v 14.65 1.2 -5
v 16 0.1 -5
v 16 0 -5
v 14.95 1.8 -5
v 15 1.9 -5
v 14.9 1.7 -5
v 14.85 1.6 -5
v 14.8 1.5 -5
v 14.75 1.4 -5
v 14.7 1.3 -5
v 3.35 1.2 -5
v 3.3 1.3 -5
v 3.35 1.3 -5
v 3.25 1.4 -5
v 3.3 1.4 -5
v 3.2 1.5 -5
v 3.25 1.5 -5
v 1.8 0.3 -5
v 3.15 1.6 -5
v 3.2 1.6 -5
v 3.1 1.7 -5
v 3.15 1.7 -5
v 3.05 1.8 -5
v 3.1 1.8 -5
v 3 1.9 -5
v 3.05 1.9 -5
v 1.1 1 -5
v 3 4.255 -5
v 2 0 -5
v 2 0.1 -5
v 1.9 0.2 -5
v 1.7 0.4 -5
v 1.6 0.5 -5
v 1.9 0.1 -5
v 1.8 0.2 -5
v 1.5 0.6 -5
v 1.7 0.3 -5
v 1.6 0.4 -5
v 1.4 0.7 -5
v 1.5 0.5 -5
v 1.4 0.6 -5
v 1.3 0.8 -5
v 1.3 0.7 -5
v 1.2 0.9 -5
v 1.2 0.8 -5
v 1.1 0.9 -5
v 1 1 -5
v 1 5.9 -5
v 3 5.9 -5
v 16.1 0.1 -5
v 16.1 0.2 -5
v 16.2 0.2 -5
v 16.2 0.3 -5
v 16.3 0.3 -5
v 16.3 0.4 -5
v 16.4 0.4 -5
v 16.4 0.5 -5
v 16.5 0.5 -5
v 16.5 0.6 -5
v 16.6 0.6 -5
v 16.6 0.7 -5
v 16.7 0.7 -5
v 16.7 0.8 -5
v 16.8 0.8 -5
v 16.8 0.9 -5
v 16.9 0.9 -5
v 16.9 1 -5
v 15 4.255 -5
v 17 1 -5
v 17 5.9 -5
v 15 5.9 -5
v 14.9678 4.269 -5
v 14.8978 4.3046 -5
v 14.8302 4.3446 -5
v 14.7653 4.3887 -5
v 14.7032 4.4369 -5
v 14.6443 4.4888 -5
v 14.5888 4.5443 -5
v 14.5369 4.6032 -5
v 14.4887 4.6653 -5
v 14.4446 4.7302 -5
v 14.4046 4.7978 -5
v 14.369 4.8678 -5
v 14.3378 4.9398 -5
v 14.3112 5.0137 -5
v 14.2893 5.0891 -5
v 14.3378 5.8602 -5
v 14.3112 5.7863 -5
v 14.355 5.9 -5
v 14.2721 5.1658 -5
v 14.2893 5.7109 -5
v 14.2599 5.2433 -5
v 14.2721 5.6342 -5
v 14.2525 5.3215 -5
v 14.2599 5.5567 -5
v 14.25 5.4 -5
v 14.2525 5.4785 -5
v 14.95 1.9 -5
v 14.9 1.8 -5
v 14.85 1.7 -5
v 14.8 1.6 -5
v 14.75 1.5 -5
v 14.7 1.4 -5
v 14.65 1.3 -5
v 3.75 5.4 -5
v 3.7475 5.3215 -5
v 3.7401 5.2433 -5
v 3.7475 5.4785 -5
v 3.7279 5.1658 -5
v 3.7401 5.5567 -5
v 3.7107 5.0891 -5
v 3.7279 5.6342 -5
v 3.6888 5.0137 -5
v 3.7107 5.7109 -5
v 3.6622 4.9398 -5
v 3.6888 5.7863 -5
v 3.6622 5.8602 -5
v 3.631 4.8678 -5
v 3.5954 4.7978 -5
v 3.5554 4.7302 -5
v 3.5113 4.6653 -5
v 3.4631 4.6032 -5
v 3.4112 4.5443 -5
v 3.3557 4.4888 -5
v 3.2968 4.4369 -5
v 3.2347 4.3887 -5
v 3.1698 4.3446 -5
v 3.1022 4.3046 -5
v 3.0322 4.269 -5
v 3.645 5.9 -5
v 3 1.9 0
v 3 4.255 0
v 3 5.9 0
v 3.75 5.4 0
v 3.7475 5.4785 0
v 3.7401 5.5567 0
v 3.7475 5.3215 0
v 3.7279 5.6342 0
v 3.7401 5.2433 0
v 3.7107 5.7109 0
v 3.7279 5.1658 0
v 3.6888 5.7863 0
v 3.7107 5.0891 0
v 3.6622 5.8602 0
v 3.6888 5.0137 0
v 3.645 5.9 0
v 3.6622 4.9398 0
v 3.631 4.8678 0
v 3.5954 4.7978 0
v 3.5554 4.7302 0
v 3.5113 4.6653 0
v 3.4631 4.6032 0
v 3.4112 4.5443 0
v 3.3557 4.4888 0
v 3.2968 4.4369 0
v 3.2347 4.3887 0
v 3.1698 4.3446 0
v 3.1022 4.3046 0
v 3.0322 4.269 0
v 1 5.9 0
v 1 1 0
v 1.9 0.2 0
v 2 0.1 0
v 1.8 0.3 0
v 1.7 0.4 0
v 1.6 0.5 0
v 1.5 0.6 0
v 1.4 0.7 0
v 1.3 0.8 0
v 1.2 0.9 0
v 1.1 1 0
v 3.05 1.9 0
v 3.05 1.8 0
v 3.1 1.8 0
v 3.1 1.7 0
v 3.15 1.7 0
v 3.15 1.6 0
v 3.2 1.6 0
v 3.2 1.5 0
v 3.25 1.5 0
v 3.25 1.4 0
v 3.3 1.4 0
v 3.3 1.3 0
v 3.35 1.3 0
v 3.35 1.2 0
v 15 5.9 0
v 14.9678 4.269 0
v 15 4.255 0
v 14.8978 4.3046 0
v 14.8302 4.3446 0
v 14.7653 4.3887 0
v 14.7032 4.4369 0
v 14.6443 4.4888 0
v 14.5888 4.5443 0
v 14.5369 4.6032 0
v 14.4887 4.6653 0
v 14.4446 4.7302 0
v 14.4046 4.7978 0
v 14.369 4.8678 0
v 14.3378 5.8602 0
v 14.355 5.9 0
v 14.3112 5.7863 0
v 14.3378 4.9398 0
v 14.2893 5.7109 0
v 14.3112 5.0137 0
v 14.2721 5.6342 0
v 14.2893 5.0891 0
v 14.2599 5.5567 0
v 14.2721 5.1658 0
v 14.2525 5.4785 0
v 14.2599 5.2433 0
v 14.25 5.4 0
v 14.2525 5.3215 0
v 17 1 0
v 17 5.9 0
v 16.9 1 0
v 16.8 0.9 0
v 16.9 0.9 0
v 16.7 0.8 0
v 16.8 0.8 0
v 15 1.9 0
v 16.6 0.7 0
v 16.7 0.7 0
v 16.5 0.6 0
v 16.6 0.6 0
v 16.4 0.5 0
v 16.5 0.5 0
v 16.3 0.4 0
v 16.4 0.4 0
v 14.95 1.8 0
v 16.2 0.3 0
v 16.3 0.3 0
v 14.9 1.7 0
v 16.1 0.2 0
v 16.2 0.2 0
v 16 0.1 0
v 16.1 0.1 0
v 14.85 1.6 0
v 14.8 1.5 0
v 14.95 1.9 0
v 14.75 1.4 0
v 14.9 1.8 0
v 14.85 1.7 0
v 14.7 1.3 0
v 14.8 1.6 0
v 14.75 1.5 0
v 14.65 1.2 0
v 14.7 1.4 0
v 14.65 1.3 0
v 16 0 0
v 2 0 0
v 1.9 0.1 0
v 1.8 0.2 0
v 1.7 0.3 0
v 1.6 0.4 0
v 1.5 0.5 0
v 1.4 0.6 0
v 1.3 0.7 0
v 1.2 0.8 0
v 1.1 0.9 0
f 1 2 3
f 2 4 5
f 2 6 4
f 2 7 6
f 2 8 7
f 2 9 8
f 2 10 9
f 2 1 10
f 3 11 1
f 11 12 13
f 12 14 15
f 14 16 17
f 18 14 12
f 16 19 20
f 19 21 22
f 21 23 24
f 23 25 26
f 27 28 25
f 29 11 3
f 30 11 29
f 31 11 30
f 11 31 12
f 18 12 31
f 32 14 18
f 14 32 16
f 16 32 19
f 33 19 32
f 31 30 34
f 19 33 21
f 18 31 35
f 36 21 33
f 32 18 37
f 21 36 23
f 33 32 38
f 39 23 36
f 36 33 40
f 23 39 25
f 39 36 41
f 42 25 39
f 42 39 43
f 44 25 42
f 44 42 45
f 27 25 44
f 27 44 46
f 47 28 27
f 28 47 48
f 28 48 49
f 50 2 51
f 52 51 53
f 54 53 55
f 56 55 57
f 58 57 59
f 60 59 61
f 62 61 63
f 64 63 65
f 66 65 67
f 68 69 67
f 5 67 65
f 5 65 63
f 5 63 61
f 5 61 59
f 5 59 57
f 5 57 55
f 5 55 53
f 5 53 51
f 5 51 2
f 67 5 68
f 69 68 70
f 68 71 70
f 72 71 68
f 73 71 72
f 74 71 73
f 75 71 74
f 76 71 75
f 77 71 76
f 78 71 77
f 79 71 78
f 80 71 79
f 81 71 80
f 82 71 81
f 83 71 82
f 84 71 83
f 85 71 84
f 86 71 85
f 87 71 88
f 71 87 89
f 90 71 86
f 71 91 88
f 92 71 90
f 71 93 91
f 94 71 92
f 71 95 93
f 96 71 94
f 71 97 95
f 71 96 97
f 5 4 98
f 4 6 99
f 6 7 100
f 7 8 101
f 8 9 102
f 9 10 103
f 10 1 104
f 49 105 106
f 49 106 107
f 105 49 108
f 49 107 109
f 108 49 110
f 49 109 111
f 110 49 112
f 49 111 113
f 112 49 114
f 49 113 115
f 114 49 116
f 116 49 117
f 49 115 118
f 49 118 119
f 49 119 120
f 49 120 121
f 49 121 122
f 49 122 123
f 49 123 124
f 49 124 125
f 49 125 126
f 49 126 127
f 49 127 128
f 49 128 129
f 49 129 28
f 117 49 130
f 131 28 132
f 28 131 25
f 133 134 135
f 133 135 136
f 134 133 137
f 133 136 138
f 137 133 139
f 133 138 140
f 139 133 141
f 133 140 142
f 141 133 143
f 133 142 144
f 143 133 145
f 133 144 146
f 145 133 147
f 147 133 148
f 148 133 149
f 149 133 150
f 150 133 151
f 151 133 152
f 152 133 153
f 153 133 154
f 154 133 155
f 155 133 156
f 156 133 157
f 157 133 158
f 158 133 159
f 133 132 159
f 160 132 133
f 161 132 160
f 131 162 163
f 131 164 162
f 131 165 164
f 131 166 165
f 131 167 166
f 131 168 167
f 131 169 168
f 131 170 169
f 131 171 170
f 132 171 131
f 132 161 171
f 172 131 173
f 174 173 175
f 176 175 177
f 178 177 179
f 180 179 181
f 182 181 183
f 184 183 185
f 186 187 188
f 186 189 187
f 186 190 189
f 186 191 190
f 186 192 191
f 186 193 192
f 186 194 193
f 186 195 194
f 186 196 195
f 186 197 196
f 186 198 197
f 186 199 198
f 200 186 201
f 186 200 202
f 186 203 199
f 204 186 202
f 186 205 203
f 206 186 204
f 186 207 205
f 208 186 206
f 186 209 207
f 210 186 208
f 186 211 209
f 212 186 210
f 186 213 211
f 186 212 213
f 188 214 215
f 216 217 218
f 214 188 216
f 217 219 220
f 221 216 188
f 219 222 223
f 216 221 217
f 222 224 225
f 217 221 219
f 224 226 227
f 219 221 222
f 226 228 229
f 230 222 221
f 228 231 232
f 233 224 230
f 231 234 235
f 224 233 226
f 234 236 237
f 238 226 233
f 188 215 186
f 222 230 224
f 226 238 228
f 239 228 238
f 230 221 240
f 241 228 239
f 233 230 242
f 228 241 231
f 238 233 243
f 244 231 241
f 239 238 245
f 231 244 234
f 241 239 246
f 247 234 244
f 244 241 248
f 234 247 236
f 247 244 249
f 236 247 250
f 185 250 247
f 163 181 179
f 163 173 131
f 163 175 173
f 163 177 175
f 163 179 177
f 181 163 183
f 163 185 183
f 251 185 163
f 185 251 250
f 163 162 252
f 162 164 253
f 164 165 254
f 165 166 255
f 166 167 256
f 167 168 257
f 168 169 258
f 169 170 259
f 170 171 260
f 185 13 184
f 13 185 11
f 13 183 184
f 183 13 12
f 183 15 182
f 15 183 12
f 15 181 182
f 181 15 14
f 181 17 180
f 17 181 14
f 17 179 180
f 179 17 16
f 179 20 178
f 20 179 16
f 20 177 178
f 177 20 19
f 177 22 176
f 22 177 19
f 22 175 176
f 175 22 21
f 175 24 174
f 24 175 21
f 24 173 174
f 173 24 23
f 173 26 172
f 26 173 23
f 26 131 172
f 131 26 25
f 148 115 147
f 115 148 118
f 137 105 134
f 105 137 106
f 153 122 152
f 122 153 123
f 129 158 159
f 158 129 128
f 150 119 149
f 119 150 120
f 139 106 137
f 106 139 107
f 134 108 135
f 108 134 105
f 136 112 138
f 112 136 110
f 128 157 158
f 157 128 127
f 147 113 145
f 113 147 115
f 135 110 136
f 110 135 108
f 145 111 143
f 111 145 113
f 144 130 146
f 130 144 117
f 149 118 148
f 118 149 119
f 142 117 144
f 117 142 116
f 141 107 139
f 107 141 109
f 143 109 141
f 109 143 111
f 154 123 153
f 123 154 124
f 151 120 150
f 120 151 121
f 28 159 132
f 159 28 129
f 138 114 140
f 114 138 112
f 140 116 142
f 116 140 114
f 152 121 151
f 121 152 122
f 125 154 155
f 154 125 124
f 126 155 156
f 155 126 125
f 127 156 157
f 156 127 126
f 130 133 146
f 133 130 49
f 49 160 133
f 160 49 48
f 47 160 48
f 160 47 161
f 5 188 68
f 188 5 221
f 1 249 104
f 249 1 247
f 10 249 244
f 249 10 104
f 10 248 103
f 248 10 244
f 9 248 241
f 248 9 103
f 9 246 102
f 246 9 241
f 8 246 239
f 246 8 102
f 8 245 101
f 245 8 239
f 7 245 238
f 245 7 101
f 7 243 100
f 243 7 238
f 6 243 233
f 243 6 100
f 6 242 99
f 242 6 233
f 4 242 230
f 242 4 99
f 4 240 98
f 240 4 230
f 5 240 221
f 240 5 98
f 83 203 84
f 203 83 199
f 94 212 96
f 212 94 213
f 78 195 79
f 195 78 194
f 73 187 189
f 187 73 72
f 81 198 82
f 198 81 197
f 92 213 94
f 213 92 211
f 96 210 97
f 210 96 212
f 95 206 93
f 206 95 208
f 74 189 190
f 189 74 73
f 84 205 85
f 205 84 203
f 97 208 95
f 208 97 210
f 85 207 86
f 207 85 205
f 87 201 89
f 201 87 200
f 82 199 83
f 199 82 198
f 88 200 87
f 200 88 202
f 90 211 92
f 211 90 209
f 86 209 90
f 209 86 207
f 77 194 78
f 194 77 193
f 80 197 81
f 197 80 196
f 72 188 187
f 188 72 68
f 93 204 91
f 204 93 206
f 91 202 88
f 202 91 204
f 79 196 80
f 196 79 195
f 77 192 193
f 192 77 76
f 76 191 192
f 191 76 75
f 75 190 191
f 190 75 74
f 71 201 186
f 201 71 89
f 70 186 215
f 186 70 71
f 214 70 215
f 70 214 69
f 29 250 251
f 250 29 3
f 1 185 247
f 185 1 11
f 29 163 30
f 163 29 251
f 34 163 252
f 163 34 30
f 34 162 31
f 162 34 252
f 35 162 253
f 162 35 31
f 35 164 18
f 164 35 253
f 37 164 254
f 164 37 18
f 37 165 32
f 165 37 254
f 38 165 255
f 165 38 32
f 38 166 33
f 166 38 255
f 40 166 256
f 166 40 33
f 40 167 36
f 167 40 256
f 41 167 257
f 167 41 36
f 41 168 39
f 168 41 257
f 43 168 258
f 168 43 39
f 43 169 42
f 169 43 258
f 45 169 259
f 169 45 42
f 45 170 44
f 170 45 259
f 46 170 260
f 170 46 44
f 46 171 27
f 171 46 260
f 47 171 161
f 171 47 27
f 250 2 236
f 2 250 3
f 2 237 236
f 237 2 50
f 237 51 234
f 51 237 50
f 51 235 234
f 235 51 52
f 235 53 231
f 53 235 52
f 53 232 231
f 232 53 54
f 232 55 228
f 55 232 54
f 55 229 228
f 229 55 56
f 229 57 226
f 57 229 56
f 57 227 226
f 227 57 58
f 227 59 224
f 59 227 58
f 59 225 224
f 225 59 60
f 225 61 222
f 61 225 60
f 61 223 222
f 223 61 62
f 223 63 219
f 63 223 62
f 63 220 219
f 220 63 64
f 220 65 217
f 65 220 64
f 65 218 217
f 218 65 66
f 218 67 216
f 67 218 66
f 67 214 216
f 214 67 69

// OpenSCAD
// file: Base_Shape_Volume.scad
// Reduce render time in preview
$fn = $preview ? 5 : 100;

// Approximation of measurement
tolerance = 0.4;
aWidth = 57;
aDepth = 67.5;
aHeight = 15;
edgeRadius = 2;

// Draw approximated height and size of Le-Frita board
module innerShape() {
    union() {
        // Corner upper right
        intersection() {
            // Spawn in cube to be sliced
            translate([0,0,0])
            cube([aWidth,aDepth,aHeight],center=true);
            
            translate([aWidth/2 - edgeRadius,aDepth/2- edgeRadius,0])
            cylinder(h=aHeight, r=edgeRadius, center=true);
        }

        // Corner bottom right
        intersection() {
            // Spawn in cube to be sliced
            translate([0,0,0])
            cube([aWidth,aDepth,aHeight],center=true);
            
            translate([aWidth/2 - edgeRadius,-(aDepth/2- edgeRadius),0])
            cylinder(h=aHeight, r=edgeRadius, center=true);
        }

        // Corner upper left
        intersection() {
            // Spawn in cube to be sliced
            translate([0,0,0])
            cube([aWidth,aDepth,aHeight],center=true);
            
            translate([-(aWidth/2 - edgeRadius),aDepth/2 - edgeRadius,0])
            cylinder(h=aHeight, r=edgeRadius, center=true);
        }

        // Corner bottom left
        intersection() {
            // Spawn in cube to be sliced
            translate([0,0,0])
            cube([aWidth,aDepth,aHeight],center=true);
            
            translate([-(aWidth/2 - edgeRadius),-(aDepth/2 - edgeRadius),0])
            cylinder(h=aHeight, r=edgeRadius, center=true);
        }
        
        // Spawn in a smaller cube to fill in
        cube([aWidth,aDepth-edgeRadius*2,aHeight],center=true);
        cube([aWidth-edgeRadius*2,aDepth,aHeight],center=true);
    }
}

// Render
//innerShape();
// file: Base_Perimeter_Outline.scad
// Previous variables from Base_Shape_Volume
//$fn = $preview ? 5 : 100;
//tolerance = 0.4;
//aWidth = 56+tolerance;
//aDepth = 65.5+tolerance;
//aHeight = 15;
//edgeRadius = 2;

// New Variables
perimeterThickness=4;

// Import variables from Base_Shape_Volume.scad
include <Base_Shape_Volume.scad>

// Draw perimeter
module perimeter() {
    difference(){
        // Spawn in slightly larger object
        resize([aWidth+perimeterThickness,aDepth+perimeterThickness,aHeight]) innerShape();
        
        // Spawn in example
        innerShape();
        
        // Cutoff
    }
}
// main file
// Previous variables from Base_Shape_Volume
//$fn = $preview ? 5 : 100;
//tolerance = 0.4;
//aWidth = 56+tolerance;
//aDepth = 65.5+tolerance;
//aHeight = 15;
//edgeRadius = 2;

// Previous variables from Base_Perimeter_Outline
//perimeterThickness=4;

// Variables from Lower_Plate
rimCut = 1;
cornerSize = 6;

// New variables
hookHeight = 18;
hookWidth = cornerSize-1;
hookThickness = 1;

// Import variables from Base_Shape_Volume.scad
include <Base_Perimeter_Outline.scad>

module drawRim() {
    translate([0,0,0]) resize([hookWidth,hookThickness/10,(rimCut*10/10)], auto=[false,false,false]) cube();
    translate([0,0.1,0]) resize([hookWidth,hookThickness/10,(rimCut*9/10)], auto=[false,false,false]) cube();
    translate([0,0.2,0]) resize([hookWidth,hookThickness/10,(rimCut*8/10)], auto=[false,false,false]) cube();
    translate([0,0.3,0]) resize([hookWidth,hookThickness/10,(rimCut*7/10)], auto=[false,false,false]) cube();
    translate([0,0.4,0]) resize([hookWidth,hookThickness/10,(rimCut*6/10)], auto=[false,false,false]) cube();
    translate([0,0.5,0]) resize([hookWidth,hookThickness/10,(rimCut*5/10)], auto=[false,false,false]) cube();
    translate([0,0.6,0]) resize([hookWidth,hookThickness/10,(rimCut*4/10)], auto=[false,false,false]) cube();
    translate([0,0.7,0]) resize([hookWidth,hookThickness/10,(rimCut*3/10)], auto=[false,false,false]) cube();
    translate([0,0.8,0]) resize([hookWidth,hookThickness/10,(rimCut*2/10)], auto=[false,false,false]) cube();
    translate([0,0.9,0]) resize([hookWidth,hookThickness/10,(rimCut*1/10)], auto=[false,false,false]) cube();
}

module drawClaw() {
    union() {
        translate([0,1,0]) cube([hookWidth,5,hookThickness+2]);
        translate([0,1,3]) drawRim();
        difference() {
            translate([0,1+3.9,2.5]) rotate(a=[0,90,0]) cylinder(hookWidth,r=1.25);
            translate([0,6,1.1]) cube([hookWidth,3,2]);
        }
    }
}

module drawSmallerClaw() {
    difference() {
        union() {
            translate([0,0.7,0]) cube([hookWidth,5,hookThickness+2]);
            difference() {
                translate([0,1+4.2,2.5]) rotate(a=[0,90,0]) cylinder(hookWidth,r=1.25);
                translate([0,6.1-tolerance,-3.1]) cube([hookWidth,3,20]);
            }
            translate([0,0.7,3]) resize([0,0,0.5], false) drawRim();
        }
        translate([0,6.5-tolerance,-2]) cube([hookWidth,1,4]);
        translate([0,0,0]) cube([hookWidth,20,1]);
    }
}

module drawPaddedHook() {
    union() {
        cube([hookWidth,hookThickness,hookHeight]);
        translate([0,0.5,0]) drawClaw();
        translate([hookWidth,0.5,hookHeight]) rotate(a=[180,0,180]) drawClaw();
        translate([0,1,0]) cube([hookWidth,0.5,hookHeight]);
    }
}

module drawHook() {
    difference() {
        union() {
            cube([hookWidth,hookThickness,hookHeight]);
            translate([0,0.2,0]) drawSmallerClaw();
            translate([hookWidth,0.2,hookHeight]) rotate(a=[180,0,180]) drawSmallerClaw();
            translate([0,1,0]) cube([hookWidth,(tolerance/2),hookHeight]);
        }
        translate([0,0,1]) drawRim();
        translate([hookWidth,0,hookHeight-1]) rotate(a=[180,0,180]) drawRim();
        cube([hookWidth,2,1]);
        translate([0,0,hookHeight-1]) cube([hookWidth,2,1]);
    }
}

translate([0,0,0]) rotate([0,90,0]) drawHook();
